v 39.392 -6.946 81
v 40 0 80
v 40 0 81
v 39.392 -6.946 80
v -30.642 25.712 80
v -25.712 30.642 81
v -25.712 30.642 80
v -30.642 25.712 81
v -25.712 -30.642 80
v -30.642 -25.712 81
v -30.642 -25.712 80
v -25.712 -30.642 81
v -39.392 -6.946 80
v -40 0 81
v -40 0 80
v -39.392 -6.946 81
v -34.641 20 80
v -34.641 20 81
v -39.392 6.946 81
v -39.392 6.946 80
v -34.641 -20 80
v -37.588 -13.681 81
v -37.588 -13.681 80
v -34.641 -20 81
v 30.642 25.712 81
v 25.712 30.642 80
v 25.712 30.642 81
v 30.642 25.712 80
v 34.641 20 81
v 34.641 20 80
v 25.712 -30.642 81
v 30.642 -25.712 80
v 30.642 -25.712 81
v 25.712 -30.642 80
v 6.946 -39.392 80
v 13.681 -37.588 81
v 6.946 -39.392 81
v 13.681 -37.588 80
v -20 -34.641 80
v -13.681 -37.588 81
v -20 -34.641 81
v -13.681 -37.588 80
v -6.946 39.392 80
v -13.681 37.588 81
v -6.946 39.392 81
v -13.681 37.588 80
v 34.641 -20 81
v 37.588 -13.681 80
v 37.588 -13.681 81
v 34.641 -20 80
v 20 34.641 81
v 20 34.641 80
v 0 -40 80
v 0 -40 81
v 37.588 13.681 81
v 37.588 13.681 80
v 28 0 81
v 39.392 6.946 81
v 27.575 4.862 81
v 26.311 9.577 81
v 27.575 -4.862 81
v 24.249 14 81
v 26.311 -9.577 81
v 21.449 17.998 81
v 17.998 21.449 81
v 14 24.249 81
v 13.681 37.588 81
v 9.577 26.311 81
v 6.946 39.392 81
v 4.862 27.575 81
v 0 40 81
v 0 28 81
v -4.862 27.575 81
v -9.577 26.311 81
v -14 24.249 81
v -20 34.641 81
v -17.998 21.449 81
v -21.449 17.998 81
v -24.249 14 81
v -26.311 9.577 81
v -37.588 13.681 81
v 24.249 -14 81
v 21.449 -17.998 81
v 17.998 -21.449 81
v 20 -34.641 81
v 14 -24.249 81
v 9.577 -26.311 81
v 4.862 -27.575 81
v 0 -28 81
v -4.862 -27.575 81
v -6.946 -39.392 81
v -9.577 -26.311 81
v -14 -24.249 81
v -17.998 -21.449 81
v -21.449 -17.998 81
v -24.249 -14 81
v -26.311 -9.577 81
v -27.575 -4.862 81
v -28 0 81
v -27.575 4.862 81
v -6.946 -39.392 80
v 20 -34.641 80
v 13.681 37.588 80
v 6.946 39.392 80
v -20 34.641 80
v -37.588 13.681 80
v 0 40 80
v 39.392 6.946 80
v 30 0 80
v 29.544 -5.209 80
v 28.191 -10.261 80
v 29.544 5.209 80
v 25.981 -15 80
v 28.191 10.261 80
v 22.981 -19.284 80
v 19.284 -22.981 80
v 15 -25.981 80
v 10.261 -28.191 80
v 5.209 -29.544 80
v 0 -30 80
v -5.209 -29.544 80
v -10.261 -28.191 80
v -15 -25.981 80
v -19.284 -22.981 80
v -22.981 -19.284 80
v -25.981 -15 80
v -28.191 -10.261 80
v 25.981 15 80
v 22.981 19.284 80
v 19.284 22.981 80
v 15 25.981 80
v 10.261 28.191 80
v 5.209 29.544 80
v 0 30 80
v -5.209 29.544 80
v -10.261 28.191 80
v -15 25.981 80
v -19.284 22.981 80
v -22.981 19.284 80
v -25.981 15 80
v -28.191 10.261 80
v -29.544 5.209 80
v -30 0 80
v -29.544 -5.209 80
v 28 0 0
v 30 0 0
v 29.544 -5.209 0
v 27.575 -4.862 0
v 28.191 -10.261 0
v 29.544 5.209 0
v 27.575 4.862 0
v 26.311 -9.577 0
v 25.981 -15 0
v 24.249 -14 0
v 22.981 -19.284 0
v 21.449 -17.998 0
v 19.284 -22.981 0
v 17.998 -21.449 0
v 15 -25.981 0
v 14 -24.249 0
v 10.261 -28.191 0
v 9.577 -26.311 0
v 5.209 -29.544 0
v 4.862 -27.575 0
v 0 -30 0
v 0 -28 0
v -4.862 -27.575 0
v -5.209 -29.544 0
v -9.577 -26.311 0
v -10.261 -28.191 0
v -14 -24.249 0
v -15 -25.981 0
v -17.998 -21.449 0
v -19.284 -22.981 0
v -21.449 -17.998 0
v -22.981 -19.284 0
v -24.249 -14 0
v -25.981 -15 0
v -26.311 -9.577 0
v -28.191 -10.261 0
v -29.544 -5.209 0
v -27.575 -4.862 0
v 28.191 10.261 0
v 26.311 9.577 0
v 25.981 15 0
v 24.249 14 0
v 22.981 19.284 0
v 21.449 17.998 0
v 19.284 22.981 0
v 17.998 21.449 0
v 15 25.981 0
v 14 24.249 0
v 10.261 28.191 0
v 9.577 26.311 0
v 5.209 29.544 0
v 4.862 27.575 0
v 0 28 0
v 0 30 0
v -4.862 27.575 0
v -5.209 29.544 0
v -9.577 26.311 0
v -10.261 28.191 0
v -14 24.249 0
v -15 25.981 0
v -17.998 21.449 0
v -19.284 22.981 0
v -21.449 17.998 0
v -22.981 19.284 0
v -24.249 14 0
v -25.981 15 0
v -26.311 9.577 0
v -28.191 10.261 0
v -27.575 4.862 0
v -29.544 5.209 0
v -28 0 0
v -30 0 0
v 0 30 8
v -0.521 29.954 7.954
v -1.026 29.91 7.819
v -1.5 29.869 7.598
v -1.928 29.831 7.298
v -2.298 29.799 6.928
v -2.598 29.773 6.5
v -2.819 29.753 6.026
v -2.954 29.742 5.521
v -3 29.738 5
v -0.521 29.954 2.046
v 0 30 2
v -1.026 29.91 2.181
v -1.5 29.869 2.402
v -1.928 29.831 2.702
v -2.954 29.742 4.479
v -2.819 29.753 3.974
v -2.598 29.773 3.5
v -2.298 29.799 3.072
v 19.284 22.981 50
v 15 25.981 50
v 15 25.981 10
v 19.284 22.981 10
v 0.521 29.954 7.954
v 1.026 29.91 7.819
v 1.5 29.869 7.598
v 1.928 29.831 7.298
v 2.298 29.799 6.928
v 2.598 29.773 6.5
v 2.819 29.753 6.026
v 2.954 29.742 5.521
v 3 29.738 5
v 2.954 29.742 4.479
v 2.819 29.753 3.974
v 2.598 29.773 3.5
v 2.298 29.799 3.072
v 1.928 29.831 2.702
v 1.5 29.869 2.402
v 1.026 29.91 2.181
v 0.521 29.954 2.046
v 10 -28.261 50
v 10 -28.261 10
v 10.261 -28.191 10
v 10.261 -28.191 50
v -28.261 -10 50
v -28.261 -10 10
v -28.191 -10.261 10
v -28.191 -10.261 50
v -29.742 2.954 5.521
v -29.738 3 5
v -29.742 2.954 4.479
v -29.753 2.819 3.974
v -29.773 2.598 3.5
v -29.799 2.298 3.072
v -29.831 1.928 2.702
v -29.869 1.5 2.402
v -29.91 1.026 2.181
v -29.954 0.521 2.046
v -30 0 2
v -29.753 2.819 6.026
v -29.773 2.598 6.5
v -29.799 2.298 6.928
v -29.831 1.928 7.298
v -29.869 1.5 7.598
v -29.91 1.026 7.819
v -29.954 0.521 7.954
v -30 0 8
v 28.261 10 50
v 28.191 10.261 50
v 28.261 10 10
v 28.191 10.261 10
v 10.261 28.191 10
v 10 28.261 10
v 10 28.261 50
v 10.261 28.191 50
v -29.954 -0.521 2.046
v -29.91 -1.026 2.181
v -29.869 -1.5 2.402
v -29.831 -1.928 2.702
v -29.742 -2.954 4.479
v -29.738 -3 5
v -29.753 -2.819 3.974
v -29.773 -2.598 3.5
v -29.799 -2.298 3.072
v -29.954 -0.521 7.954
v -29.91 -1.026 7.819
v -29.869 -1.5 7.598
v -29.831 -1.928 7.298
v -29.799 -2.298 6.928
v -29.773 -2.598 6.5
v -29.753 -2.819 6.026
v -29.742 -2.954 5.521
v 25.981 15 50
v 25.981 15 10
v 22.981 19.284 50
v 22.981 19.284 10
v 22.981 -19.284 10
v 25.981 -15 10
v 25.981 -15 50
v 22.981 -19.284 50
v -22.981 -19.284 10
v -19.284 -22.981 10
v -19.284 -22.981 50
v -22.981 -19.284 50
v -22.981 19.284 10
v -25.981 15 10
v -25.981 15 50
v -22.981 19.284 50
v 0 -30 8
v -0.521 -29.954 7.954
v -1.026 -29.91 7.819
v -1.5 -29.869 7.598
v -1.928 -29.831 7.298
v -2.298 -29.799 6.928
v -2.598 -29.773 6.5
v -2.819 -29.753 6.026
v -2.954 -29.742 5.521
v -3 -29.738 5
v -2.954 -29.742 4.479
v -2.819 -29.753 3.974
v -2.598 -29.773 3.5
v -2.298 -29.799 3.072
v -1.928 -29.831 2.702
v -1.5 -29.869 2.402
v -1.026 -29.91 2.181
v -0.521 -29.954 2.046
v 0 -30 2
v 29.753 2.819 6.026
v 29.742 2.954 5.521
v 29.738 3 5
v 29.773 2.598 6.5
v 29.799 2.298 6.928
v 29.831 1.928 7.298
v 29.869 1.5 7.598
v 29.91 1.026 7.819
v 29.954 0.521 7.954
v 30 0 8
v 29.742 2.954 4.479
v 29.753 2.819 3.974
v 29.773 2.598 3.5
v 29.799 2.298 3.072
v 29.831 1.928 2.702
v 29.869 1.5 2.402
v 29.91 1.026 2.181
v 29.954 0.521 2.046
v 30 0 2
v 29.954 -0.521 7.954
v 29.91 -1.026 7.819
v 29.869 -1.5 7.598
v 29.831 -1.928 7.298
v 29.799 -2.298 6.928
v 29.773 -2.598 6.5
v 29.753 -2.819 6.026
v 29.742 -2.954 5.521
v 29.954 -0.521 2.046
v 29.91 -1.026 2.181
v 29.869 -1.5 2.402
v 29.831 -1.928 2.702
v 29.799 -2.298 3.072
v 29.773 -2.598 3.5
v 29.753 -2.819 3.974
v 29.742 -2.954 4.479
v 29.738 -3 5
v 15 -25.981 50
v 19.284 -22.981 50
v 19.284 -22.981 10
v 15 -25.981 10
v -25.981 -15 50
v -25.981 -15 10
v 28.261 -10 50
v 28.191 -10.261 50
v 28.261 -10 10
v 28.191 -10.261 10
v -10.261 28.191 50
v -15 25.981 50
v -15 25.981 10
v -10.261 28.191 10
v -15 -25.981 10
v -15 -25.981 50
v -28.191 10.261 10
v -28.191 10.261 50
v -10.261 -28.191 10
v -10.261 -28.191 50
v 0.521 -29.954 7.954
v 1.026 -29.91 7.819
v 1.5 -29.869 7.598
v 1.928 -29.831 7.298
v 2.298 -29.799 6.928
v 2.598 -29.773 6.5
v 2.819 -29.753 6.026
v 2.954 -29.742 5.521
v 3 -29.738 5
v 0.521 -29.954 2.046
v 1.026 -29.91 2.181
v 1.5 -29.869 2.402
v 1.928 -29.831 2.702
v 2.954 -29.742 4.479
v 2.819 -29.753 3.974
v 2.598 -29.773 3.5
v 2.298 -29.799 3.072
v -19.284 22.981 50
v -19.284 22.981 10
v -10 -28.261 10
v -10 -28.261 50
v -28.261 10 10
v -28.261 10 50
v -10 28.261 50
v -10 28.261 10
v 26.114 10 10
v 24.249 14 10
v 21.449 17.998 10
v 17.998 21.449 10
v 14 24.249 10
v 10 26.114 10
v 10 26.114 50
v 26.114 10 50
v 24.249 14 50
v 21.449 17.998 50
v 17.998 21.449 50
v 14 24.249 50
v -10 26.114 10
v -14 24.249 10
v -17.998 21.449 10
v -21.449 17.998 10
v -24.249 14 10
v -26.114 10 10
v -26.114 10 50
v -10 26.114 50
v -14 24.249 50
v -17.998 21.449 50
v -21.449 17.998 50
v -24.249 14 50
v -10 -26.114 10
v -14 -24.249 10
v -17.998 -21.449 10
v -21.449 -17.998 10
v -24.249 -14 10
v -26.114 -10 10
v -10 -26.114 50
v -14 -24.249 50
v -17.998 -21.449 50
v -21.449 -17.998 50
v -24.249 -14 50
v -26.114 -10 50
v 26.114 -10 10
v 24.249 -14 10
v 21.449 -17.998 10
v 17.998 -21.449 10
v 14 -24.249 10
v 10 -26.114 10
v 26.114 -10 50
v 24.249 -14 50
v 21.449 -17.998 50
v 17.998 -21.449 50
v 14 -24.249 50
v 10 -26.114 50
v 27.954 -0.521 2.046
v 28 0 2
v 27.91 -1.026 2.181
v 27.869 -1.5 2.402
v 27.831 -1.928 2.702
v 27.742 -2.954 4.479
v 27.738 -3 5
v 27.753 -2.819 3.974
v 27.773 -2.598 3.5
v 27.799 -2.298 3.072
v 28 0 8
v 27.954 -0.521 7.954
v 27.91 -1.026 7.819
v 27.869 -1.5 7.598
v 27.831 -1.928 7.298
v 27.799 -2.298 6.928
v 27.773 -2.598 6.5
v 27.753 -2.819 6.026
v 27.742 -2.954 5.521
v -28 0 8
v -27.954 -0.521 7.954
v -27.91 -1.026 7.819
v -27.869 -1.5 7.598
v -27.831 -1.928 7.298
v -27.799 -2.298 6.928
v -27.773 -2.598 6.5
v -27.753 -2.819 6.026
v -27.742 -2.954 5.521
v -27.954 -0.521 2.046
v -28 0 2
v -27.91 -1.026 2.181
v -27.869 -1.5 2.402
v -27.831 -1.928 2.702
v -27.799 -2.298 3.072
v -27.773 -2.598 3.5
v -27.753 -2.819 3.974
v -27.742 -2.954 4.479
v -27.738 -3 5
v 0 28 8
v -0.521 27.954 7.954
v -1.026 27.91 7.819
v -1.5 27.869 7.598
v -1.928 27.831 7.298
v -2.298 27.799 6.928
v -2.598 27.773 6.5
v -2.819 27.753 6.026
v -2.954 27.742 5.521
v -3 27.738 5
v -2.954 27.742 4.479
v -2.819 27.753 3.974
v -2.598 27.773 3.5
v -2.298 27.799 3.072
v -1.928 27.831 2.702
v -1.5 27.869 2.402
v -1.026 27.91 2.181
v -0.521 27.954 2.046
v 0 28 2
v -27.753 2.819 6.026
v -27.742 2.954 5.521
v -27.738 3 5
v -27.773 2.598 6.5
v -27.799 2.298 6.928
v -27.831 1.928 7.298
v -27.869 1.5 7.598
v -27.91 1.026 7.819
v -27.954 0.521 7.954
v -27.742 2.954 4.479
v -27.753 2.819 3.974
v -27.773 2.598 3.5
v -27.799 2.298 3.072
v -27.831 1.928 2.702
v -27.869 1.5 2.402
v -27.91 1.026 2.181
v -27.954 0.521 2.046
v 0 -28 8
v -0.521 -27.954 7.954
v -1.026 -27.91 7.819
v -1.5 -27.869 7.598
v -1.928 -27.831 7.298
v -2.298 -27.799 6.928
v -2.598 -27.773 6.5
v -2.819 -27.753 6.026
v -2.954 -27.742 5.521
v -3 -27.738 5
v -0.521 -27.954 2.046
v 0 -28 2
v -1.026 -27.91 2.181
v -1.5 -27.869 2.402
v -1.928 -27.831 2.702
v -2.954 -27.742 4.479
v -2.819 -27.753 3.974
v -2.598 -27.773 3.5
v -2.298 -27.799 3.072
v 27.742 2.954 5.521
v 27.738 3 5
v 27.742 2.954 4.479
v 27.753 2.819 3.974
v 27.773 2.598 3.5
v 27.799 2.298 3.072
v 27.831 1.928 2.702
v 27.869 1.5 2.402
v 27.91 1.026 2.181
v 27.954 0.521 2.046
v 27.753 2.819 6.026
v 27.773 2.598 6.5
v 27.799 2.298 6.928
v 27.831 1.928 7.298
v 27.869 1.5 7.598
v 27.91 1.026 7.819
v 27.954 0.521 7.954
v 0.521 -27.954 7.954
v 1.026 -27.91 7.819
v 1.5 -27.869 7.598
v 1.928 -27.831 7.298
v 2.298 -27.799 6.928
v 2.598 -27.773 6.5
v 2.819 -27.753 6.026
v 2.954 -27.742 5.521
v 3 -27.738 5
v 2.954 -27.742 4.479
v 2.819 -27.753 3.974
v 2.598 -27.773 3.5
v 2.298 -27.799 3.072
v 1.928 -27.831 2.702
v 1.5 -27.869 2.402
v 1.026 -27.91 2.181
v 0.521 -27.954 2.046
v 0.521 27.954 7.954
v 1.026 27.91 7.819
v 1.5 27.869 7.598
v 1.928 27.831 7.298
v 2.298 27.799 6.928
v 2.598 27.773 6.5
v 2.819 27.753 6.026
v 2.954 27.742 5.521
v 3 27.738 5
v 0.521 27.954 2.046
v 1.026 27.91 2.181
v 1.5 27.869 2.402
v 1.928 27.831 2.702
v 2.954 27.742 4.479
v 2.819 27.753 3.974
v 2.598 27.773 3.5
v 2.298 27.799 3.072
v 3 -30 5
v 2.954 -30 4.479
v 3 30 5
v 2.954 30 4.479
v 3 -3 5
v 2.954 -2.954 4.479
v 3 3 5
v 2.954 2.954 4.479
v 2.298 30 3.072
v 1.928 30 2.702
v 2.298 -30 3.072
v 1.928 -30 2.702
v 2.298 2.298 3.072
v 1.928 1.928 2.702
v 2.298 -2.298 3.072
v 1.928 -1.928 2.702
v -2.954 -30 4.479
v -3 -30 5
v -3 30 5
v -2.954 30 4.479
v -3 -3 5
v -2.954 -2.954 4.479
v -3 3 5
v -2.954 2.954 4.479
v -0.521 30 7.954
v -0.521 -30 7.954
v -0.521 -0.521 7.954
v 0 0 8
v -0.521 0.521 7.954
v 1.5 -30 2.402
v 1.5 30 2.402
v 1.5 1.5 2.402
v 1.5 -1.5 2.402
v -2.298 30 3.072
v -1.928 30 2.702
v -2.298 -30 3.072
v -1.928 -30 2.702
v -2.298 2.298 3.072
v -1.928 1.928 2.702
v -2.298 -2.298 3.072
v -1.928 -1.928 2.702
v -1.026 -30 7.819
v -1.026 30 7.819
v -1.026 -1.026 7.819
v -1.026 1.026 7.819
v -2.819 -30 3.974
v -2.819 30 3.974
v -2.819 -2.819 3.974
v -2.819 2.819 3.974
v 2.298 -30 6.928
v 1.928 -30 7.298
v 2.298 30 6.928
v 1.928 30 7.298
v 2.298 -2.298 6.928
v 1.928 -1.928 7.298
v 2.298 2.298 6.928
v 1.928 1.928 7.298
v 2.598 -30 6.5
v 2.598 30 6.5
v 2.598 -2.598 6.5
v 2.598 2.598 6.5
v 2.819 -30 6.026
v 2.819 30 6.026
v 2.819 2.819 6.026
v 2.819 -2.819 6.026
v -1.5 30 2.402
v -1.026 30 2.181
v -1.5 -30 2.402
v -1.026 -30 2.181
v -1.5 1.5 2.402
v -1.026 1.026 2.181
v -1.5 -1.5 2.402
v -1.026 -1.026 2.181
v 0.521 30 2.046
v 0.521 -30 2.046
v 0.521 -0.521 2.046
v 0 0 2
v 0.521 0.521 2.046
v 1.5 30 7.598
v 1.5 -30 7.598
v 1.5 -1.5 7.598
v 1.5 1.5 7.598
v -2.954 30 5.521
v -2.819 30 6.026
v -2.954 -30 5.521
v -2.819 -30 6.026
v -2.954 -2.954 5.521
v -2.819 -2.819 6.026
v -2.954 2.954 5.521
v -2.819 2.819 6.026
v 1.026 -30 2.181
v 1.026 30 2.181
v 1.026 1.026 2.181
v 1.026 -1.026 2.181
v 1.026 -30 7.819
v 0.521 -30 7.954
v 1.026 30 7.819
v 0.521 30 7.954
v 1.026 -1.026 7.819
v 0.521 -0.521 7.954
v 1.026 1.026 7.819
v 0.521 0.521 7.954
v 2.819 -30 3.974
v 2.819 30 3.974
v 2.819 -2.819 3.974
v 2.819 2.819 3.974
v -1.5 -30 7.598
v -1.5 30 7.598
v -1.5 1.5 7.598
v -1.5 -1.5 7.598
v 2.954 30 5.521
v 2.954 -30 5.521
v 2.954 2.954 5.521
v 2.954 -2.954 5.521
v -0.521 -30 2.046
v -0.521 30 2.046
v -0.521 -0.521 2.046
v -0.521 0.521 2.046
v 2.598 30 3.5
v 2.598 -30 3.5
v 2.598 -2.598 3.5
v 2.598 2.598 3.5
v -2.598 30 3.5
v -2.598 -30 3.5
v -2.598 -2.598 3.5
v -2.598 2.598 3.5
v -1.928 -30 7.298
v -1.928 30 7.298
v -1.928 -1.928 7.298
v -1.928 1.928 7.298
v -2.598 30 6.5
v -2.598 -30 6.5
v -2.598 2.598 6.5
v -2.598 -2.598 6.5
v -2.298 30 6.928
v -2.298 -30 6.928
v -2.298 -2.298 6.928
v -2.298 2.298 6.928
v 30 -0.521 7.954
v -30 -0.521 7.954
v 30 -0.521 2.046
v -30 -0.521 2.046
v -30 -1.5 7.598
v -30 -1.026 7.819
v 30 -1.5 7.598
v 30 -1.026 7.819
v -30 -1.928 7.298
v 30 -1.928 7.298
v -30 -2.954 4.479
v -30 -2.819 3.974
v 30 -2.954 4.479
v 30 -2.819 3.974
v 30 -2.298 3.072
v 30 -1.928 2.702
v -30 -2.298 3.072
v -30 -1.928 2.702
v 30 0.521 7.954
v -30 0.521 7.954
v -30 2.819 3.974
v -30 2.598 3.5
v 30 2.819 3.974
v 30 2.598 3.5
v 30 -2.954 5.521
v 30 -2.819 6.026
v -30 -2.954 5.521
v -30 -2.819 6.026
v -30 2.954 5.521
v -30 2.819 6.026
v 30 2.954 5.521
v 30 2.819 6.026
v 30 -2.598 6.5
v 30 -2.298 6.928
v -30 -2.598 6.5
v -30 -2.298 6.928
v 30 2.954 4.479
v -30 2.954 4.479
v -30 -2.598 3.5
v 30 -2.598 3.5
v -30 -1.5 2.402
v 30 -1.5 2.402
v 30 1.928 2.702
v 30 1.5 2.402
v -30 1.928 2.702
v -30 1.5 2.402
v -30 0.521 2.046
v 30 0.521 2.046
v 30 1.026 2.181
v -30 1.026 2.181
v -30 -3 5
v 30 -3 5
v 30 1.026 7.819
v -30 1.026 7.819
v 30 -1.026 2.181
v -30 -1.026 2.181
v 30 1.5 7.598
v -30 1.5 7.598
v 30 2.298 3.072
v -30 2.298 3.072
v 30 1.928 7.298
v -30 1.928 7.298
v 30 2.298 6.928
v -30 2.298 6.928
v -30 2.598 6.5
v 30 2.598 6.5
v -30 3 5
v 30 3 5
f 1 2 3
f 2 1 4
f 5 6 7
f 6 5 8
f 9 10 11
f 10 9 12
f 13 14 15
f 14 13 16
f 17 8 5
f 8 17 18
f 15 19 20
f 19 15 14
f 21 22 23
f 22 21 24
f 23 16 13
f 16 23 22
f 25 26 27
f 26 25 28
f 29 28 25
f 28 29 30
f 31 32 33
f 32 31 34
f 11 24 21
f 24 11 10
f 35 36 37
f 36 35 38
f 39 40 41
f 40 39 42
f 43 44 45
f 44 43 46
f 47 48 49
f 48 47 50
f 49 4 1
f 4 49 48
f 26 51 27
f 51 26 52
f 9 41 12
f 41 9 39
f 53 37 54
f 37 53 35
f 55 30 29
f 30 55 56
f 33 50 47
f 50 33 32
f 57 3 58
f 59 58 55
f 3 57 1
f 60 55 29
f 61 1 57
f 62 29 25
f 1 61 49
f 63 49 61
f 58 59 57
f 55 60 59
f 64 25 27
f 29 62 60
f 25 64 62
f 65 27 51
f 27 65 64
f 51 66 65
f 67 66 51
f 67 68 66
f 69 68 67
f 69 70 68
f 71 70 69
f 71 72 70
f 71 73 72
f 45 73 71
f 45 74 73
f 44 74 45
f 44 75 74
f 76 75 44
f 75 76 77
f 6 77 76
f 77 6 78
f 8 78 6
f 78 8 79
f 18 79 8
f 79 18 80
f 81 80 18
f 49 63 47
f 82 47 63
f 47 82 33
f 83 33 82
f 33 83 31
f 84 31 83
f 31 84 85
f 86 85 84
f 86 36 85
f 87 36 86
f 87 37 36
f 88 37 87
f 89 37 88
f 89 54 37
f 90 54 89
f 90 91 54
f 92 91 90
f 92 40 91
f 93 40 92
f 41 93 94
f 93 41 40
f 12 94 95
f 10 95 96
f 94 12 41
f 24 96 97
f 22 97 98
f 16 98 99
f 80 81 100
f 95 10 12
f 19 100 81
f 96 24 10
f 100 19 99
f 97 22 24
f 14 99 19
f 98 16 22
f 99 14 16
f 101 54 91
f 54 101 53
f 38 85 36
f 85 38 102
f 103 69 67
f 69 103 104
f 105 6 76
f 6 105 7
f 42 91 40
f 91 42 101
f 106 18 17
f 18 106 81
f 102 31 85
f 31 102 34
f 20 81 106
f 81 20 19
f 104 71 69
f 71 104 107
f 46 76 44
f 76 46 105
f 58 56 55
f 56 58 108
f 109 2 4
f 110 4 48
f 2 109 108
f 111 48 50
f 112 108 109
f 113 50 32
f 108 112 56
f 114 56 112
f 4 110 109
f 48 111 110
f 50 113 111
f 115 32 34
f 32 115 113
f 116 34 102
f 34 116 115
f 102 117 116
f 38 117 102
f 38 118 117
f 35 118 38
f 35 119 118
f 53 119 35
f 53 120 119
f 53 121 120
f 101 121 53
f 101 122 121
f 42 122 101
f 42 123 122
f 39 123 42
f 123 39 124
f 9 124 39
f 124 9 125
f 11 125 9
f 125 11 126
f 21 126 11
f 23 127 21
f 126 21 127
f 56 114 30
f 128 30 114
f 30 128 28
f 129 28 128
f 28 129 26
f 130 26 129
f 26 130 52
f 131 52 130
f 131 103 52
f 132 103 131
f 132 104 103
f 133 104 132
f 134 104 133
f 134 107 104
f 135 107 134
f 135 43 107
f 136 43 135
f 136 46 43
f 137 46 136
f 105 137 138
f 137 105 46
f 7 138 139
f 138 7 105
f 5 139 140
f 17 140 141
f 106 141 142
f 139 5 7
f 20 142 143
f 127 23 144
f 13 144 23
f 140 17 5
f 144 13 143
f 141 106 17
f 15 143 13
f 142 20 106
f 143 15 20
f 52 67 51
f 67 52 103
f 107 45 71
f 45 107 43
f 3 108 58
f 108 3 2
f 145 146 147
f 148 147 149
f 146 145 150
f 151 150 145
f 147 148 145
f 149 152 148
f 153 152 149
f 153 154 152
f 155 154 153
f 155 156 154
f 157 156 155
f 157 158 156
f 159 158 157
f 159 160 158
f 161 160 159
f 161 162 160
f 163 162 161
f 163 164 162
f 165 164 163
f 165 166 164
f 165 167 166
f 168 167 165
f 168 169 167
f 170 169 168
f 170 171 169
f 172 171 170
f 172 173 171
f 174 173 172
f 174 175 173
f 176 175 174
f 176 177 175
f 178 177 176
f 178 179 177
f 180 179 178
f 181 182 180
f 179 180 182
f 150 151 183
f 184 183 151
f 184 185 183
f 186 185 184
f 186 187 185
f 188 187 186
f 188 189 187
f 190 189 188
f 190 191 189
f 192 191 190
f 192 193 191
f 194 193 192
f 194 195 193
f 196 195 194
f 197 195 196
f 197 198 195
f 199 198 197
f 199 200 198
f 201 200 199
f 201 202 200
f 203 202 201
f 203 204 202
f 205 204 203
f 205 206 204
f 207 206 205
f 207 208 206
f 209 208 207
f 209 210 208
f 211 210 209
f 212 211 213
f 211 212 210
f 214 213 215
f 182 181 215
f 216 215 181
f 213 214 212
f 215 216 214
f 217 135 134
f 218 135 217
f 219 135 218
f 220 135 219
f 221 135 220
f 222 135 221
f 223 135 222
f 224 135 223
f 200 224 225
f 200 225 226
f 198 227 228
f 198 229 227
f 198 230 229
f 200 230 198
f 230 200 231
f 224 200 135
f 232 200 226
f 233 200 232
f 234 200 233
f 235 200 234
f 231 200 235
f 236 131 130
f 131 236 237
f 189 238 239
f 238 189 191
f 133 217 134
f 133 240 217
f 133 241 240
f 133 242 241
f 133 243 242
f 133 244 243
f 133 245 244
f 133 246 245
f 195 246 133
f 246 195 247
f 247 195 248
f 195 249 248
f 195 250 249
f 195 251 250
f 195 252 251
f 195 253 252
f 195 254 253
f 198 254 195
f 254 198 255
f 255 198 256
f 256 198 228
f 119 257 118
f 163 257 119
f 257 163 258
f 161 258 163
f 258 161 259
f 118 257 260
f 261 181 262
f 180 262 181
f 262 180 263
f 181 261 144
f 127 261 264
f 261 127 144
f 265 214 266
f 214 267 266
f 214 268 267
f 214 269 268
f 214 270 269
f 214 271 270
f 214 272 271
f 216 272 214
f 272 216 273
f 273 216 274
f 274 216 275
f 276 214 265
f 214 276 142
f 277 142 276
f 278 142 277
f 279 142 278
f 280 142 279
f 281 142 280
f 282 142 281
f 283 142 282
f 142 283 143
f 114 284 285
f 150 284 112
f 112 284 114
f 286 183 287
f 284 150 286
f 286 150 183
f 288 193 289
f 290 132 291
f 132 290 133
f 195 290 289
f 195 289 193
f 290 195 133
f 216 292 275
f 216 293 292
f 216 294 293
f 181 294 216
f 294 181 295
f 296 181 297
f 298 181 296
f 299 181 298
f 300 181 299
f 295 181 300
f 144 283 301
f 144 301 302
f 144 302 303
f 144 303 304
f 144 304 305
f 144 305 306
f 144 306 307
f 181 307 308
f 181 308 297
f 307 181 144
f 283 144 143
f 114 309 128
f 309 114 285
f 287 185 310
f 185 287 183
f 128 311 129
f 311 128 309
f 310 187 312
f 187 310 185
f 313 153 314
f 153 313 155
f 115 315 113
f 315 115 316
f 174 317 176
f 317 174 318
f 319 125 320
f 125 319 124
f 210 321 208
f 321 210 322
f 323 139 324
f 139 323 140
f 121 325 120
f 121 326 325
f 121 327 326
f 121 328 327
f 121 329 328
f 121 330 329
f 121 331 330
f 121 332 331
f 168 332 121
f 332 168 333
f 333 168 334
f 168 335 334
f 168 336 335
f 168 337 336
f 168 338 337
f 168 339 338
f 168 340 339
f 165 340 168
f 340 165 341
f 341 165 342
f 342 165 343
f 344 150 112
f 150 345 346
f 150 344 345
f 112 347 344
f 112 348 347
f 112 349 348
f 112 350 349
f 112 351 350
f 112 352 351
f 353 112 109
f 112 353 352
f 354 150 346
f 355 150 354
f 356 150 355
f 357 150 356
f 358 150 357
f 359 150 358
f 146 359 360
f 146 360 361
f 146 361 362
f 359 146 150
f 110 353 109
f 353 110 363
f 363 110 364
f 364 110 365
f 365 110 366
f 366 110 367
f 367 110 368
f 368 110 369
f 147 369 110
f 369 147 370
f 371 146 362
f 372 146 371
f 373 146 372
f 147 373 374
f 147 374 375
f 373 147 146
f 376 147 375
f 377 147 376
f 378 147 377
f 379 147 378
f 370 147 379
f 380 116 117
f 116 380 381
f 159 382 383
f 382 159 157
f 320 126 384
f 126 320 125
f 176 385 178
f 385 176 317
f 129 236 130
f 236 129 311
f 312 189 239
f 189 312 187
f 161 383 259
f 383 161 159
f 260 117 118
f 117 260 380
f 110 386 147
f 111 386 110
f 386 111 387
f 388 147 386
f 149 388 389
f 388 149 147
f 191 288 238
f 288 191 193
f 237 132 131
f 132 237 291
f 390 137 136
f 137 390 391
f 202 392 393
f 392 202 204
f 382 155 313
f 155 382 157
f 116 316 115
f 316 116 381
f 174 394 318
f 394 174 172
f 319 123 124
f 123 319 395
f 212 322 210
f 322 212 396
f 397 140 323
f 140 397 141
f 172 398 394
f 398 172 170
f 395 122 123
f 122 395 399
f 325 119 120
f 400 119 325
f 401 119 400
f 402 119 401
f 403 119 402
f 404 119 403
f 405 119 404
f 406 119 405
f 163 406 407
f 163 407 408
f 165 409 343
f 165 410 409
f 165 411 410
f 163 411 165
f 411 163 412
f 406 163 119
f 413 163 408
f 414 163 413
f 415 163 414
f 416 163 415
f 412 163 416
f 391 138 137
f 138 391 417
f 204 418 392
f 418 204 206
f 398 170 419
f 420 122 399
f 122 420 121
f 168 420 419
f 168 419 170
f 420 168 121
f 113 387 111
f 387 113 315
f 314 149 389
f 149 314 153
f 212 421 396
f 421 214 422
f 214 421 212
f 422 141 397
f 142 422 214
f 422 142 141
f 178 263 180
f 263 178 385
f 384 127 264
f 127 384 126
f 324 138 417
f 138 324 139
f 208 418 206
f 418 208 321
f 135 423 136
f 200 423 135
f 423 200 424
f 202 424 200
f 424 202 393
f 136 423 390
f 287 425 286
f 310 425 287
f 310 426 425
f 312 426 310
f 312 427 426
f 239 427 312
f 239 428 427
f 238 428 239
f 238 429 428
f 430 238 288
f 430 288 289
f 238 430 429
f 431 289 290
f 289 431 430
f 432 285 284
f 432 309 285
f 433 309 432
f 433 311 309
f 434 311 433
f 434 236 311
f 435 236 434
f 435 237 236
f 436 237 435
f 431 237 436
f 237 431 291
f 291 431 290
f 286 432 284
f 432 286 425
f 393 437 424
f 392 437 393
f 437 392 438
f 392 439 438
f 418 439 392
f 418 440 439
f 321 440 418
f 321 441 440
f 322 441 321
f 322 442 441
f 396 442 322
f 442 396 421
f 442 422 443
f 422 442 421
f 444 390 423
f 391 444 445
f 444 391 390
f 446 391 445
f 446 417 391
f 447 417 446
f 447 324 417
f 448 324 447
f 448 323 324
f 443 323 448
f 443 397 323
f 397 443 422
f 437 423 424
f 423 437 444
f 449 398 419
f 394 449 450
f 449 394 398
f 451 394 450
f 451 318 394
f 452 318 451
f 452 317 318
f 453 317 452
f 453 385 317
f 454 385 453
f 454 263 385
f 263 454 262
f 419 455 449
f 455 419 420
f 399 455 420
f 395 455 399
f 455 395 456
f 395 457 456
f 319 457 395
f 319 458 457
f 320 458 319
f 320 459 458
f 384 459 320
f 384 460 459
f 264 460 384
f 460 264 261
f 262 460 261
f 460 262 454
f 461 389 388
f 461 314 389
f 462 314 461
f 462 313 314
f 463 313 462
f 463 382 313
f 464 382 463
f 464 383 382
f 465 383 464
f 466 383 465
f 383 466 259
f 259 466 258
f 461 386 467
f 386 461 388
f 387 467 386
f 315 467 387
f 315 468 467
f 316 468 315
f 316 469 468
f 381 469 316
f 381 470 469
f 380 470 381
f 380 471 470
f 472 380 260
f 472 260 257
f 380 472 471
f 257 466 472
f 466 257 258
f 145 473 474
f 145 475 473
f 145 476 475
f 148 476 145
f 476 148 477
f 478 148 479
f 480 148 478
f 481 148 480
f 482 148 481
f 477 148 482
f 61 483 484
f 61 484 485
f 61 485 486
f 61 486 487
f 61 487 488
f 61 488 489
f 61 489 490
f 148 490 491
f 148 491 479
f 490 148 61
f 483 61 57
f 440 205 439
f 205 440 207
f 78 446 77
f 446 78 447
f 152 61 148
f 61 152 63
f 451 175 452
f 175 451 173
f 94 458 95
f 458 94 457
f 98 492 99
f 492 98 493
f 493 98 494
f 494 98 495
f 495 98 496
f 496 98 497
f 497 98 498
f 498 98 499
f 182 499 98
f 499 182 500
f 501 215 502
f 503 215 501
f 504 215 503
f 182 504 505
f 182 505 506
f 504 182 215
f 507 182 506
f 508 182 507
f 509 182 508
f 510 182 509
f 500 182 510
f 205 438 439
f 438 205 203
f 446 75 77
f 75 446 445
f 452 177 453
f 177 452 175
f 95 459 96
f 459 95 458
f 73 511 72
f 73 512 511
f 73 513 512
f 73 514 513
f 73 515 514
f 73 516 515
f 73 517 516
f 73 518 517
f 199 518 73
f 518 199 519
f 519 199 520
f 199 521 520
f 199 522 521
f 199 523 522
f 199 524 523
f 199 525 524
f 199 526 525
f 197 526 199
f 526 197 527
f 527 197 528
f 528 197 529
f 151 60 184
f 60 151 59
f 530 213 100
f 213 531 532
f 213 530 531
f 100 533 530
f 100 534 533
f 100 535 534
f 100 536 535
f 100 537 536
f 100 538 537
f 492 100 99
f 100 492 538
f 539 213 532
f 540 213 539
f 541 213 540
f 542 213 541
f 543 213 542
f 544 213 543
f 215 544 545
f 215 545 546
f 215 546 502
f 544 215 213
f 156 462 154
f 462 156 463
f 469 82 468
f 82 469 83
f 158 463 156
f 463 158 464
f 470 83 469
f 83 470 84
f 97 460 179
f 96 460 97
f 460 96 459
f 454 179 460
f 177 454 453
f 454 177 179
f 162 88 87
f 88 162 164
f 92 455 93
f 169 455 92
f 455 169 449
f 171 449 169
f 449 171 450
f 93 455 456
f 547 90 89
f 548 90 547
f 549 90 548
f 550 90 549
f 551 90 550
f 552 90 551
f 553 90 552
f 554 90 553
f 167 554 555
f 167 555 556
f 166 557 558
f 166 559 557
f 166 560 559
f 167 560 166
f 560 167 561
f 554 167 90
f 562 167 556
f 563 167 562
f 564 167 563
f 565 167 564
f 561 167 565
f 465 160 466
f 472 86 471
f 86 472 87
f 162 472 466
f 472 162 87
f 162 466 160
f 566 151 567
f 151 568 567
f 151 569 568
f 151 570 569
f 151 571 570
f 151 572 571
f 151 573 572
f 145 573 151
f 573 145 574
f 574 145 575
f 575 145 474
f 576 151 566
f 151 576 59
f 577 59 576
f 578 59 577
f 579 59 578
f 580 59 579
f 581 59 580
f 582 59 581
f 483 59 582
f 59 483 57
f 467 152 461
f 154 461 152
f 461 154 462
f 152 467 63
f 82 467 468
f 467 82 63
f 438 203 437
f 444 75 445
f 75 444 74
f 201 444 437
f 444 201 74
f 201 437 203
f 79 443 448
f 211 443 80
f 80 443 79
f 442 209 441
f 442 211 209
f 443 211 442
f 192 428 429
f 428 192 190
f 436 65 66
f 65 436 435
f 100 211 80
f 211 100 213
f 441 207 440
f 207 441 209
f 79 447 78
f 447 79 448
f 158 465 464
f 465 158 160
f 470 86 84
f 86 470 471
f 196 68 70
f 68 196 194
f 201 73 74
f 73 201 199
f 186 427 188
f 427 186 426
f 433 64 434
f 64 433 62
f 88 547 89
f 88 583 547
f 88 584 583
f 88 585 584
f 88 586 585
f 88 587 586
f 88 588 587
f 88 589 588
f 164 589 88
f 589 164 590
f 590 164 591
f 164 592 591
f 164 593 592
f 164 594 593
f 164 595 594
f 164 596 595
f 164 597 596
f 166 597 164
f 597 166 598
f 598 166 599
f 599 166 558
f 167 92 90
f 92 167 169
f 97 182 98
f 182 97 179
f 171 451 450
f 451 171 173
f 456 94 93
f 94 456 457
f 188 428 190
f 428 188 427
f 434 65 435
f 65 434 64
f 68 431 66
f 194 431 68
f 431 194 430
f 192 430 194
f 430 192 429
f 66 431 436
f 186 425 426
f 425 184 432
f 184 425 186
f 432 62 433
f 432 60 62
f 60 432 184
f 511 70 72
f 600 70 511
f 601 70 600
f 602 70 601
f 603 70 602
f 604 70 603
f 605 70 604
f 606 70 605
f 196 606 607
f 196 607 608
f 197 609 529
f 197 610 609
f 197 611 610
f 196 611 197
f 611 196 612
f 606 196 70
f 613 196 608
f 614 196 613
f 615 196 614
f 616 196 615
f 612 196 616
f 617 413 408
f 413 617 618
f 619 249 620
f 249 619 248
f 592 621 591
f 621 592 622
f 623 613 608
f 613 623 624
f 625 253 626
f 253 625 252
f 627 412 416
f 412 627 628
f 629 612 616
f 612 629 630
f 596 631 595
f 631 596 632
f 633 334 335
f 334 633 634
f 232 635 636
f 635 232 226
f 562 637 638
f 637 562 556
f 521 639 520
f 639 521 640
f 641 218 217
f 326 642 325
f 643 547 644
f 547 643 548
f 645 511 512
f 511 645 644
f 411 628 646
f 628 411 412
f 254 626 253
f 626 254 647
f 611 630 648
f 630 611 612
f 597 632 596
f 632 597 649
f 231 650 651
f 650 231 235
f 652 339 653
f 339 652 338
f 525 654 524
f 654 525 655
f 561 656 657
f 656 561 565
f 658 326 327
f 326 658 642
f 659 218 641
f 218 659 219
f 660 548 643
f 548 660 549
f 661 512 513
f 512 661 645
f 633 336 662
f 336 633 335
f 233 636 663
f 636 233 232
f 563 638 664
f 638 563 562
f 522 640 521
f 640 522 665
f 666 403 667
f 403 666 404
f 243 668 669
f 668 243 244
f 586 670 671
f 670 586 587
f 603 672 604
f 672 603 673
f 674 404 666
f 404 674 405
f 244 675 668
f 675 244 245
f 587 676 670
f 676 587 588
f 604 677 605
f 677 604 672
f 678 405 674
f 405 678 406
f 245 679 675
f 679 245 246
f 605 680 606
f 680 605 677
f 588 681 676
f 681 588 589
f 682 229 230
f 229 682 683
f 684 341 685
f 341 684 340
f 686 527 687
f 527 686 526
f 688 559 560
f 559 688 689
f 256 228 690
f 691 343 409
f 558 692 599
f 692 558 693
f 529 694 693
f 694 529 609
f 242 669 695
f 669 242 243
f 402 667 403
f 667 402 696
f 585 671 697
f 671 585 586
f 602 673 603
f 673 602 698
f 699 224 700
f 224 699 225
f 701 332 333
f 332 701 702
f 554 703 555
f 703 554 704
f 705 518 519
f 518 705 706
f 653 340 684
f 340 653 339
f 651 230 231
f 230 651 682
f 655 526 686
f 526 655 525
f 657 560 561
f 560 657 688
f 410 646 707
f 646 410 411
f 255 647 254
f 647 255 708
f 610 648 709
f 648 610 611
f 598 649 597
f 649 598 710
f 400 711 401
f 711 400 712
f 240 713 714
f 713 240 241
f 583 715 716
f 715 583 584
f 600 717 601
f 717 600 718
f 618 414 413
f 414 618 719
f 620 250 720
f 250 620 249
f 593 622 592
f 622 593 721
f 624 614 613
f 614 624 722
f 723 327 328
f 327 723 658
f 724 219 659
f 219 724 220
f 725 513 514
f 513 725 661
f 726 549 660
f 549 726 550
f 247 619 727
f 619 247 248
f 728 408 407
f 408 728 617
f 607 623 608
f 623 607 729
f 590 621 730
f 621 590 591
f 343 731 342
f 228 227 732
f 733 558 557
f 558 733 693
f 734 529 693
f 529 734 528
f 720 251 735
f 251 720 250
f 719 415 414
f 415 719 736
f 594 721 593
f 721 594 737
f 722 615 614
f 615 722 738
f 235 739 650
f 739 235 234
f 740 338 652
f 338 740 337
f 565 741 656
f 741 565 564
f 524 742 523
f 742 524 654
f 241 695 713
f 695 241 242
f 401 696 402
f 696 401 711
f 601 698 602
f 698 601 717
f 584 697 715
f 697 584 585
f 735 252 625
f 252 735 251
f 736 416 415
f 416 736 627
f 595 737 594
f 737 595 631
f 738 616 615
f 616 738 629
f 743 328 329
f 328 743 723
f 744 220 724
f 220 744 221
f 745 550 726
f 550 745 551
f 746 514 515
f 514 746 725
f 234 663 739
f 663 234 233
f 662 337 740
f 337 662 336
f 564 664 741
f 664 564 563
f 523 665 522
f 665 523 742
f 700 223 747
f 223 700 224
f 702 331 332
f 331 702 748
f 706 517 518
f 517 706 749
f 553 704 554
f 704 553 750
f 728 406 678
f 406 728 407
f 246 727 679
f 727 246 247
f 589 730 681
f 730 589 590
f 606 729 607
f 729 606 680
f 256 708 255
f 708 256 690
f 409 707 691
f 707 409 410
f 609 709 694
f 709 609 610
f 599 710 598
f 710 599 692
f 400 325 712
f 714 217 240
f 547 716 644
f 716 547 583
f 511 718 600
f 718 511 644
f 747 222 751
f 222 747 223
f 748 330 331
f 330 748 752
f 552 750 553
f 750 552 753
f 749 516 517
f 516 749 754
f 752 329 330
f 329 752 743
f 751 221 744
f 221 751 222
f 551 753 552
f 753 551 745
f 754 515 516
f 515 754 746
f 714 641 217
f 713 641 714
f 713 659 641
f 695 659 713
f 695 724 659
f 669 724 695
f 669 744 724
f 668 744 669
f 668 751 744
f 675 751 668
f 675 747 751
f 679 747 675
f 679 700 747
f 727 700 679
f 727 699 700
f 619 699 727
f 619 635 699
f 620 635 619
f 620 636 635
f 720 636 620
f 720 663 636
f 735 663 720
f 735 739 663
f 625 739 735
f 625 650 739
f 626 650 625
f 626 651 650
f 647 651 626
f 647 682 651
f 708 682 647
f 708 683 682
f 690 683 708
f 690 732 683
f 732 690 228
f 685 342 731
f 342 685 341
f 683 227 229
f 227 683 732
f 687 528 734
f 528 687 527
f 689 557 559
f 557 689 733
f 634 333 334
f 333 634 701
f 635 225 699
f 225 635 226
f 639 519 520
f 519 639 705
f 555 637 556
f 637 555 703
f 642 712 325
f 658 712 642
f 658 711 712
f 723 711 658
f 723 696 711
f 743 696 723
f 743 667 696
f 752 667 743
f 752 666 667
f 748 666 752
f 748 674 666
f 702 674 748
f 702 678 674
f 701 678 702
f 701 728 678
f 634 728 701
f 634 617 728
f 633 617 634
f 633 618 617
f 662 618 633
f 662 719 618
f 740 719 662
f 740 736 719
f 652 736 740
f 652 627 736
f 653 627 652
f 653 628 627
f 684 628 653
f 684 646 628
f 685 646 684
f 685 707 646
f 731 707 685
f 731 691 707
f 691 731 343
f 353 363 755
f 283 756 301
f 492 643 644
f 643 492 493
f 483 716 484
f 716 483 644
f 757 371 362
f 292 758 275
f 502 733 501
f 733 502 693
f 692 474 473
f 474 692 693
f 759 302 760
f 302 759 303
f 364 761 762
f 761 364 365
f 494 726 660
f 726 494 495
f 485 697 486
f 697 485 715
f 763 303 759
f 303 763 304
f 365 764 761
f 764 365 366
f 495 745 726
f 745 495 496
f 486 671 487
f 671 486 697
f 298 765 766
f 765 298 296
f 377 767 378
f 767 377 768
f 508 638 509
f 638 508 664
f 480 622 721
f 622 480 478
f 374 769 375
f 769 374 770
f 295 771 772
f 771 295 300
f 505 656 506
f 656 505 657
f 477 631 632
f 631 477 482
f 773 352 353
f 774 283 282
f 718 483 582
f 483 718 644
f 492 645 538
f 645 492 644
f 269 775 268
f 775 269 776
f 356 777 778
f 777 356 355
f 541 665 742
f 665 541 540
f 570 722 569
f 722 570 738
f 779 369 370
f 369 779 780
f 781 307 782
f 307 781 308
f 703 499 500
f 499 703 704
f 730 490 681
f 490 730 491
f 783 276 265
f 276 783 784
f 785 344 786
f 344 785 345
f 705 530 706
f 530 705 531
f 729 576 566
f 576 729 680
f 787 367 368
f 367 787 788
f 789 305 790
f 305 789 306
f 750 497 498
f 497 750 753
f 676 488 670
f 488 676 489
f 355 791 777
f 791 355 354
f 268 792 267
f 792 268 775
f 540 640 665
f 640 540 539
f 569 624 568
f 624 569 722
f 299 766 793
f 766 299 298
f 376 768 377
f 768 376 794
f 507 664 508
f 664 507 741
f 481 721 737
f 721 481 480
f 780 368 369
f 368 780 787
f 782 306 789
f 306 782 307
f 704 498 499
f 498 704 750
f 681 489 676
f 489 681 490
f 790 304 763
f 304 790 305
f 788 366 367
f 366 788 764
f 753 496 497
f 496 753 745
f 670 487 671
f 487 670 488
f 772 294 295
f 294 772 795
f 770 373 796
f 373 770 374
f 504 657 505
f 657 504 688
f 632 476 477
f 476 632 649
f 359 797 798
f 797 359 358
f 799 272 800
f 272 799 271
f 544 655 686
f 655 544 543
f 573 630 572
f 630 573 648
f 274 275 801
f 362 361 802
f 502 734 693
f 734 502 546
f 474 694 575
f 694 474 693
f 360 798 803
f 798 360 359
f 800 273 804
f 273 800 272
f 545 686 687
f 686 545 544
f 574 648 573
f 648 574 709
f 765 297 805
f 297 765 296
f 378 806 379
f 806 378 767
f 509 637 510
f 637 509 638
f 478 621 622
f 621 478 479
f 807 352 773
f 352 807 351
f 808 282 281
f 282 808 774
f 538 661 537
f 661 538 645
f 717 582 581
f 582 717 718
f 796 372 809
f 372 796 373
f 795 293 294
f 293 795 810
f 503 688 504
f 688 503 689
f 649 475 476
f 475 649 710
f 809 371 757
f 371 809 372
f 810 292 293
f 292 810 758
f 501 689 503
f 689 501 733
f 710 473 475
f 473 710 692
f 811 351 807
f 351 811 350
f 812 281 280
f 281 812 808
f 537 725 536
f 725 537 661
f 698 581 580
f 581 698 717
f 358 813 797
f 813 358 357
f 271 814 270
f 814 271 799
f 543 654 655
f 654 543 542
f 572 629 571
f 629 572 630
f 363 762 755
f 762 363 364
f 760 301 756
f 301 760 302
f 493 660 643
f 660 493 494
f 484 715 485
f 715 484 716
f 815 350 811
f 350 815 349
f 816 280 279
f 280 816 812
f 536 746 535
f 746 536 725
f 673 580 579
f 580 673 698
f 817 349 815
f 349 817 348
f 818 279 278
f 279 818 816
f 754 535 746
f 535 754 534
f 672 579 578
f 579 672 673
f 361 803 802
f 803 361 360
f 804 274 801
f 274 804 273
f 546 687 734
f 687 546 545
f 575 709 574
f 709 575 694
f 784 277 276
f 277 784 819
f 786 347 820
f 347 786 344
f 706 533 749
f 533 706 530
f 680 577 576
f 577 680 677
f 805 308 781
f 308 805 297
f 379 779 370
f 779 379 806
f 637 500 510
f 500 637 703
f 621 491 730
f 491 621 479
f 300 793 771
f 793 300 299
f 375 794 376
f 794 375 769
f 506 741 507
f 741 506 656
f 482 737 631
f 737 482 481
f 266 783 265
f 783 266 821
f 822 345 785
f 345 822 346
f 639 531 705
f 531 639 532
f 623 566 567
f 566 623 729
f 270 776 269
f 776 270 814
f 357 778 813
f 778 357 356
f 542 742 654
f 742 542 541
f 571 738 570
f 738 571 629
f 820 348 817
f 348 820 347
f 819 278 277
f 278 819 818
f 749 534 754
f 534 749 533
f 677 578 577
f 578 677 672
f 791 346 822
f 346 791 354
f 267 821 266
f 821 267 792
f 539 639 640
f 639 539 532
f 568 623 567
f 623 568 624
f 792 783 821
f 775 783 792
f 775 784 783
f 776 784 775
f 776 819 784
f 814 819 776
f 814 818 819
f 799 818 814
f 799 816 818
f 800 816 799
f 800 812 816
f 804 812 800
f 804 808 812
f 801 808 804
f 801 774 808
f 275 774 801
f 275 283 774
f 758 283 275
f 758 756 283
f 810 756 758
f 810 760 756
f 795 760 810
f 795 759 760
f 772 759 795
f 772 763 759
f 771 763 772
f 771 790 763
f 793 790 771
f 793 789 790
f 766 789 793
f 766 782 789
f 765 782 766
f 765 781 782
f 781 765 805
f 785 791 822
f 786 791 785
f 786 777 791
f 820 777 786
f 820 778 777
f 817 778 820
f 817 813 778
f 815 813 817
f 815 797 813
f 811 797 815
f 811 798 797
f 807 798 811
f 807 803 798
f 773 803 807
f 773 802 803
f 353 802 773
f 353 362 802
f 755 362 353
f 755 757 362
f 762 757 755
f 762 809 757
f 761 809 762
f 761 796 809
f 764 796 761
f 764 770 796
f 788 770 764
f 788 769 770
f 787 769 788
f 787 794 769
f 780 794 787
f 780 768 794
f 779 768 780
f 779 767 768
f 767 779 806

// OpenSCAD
$fn=36;


    rotate([90,0,0]) translate([0,5,-30]) linear_extrude(60) circle(3);
    rotate([0,90,0]) translate([-5,0,-30]) linear_extrude(60) circle(3);

difference() {
    union() {
        translate([0,0,80]) linear_extrude(1) circle(40);
        linear_extrude(80) circle(30);
    }
    linear_extrude(85) circle(28);
    
    for(x = [0 : 1 : 3]) {
        rotate([0,0,90 * x]) translate([0, 0, 10]) linear_extrude(40) translate([10, 10, 0]) square([20, 20]);
    }
}
